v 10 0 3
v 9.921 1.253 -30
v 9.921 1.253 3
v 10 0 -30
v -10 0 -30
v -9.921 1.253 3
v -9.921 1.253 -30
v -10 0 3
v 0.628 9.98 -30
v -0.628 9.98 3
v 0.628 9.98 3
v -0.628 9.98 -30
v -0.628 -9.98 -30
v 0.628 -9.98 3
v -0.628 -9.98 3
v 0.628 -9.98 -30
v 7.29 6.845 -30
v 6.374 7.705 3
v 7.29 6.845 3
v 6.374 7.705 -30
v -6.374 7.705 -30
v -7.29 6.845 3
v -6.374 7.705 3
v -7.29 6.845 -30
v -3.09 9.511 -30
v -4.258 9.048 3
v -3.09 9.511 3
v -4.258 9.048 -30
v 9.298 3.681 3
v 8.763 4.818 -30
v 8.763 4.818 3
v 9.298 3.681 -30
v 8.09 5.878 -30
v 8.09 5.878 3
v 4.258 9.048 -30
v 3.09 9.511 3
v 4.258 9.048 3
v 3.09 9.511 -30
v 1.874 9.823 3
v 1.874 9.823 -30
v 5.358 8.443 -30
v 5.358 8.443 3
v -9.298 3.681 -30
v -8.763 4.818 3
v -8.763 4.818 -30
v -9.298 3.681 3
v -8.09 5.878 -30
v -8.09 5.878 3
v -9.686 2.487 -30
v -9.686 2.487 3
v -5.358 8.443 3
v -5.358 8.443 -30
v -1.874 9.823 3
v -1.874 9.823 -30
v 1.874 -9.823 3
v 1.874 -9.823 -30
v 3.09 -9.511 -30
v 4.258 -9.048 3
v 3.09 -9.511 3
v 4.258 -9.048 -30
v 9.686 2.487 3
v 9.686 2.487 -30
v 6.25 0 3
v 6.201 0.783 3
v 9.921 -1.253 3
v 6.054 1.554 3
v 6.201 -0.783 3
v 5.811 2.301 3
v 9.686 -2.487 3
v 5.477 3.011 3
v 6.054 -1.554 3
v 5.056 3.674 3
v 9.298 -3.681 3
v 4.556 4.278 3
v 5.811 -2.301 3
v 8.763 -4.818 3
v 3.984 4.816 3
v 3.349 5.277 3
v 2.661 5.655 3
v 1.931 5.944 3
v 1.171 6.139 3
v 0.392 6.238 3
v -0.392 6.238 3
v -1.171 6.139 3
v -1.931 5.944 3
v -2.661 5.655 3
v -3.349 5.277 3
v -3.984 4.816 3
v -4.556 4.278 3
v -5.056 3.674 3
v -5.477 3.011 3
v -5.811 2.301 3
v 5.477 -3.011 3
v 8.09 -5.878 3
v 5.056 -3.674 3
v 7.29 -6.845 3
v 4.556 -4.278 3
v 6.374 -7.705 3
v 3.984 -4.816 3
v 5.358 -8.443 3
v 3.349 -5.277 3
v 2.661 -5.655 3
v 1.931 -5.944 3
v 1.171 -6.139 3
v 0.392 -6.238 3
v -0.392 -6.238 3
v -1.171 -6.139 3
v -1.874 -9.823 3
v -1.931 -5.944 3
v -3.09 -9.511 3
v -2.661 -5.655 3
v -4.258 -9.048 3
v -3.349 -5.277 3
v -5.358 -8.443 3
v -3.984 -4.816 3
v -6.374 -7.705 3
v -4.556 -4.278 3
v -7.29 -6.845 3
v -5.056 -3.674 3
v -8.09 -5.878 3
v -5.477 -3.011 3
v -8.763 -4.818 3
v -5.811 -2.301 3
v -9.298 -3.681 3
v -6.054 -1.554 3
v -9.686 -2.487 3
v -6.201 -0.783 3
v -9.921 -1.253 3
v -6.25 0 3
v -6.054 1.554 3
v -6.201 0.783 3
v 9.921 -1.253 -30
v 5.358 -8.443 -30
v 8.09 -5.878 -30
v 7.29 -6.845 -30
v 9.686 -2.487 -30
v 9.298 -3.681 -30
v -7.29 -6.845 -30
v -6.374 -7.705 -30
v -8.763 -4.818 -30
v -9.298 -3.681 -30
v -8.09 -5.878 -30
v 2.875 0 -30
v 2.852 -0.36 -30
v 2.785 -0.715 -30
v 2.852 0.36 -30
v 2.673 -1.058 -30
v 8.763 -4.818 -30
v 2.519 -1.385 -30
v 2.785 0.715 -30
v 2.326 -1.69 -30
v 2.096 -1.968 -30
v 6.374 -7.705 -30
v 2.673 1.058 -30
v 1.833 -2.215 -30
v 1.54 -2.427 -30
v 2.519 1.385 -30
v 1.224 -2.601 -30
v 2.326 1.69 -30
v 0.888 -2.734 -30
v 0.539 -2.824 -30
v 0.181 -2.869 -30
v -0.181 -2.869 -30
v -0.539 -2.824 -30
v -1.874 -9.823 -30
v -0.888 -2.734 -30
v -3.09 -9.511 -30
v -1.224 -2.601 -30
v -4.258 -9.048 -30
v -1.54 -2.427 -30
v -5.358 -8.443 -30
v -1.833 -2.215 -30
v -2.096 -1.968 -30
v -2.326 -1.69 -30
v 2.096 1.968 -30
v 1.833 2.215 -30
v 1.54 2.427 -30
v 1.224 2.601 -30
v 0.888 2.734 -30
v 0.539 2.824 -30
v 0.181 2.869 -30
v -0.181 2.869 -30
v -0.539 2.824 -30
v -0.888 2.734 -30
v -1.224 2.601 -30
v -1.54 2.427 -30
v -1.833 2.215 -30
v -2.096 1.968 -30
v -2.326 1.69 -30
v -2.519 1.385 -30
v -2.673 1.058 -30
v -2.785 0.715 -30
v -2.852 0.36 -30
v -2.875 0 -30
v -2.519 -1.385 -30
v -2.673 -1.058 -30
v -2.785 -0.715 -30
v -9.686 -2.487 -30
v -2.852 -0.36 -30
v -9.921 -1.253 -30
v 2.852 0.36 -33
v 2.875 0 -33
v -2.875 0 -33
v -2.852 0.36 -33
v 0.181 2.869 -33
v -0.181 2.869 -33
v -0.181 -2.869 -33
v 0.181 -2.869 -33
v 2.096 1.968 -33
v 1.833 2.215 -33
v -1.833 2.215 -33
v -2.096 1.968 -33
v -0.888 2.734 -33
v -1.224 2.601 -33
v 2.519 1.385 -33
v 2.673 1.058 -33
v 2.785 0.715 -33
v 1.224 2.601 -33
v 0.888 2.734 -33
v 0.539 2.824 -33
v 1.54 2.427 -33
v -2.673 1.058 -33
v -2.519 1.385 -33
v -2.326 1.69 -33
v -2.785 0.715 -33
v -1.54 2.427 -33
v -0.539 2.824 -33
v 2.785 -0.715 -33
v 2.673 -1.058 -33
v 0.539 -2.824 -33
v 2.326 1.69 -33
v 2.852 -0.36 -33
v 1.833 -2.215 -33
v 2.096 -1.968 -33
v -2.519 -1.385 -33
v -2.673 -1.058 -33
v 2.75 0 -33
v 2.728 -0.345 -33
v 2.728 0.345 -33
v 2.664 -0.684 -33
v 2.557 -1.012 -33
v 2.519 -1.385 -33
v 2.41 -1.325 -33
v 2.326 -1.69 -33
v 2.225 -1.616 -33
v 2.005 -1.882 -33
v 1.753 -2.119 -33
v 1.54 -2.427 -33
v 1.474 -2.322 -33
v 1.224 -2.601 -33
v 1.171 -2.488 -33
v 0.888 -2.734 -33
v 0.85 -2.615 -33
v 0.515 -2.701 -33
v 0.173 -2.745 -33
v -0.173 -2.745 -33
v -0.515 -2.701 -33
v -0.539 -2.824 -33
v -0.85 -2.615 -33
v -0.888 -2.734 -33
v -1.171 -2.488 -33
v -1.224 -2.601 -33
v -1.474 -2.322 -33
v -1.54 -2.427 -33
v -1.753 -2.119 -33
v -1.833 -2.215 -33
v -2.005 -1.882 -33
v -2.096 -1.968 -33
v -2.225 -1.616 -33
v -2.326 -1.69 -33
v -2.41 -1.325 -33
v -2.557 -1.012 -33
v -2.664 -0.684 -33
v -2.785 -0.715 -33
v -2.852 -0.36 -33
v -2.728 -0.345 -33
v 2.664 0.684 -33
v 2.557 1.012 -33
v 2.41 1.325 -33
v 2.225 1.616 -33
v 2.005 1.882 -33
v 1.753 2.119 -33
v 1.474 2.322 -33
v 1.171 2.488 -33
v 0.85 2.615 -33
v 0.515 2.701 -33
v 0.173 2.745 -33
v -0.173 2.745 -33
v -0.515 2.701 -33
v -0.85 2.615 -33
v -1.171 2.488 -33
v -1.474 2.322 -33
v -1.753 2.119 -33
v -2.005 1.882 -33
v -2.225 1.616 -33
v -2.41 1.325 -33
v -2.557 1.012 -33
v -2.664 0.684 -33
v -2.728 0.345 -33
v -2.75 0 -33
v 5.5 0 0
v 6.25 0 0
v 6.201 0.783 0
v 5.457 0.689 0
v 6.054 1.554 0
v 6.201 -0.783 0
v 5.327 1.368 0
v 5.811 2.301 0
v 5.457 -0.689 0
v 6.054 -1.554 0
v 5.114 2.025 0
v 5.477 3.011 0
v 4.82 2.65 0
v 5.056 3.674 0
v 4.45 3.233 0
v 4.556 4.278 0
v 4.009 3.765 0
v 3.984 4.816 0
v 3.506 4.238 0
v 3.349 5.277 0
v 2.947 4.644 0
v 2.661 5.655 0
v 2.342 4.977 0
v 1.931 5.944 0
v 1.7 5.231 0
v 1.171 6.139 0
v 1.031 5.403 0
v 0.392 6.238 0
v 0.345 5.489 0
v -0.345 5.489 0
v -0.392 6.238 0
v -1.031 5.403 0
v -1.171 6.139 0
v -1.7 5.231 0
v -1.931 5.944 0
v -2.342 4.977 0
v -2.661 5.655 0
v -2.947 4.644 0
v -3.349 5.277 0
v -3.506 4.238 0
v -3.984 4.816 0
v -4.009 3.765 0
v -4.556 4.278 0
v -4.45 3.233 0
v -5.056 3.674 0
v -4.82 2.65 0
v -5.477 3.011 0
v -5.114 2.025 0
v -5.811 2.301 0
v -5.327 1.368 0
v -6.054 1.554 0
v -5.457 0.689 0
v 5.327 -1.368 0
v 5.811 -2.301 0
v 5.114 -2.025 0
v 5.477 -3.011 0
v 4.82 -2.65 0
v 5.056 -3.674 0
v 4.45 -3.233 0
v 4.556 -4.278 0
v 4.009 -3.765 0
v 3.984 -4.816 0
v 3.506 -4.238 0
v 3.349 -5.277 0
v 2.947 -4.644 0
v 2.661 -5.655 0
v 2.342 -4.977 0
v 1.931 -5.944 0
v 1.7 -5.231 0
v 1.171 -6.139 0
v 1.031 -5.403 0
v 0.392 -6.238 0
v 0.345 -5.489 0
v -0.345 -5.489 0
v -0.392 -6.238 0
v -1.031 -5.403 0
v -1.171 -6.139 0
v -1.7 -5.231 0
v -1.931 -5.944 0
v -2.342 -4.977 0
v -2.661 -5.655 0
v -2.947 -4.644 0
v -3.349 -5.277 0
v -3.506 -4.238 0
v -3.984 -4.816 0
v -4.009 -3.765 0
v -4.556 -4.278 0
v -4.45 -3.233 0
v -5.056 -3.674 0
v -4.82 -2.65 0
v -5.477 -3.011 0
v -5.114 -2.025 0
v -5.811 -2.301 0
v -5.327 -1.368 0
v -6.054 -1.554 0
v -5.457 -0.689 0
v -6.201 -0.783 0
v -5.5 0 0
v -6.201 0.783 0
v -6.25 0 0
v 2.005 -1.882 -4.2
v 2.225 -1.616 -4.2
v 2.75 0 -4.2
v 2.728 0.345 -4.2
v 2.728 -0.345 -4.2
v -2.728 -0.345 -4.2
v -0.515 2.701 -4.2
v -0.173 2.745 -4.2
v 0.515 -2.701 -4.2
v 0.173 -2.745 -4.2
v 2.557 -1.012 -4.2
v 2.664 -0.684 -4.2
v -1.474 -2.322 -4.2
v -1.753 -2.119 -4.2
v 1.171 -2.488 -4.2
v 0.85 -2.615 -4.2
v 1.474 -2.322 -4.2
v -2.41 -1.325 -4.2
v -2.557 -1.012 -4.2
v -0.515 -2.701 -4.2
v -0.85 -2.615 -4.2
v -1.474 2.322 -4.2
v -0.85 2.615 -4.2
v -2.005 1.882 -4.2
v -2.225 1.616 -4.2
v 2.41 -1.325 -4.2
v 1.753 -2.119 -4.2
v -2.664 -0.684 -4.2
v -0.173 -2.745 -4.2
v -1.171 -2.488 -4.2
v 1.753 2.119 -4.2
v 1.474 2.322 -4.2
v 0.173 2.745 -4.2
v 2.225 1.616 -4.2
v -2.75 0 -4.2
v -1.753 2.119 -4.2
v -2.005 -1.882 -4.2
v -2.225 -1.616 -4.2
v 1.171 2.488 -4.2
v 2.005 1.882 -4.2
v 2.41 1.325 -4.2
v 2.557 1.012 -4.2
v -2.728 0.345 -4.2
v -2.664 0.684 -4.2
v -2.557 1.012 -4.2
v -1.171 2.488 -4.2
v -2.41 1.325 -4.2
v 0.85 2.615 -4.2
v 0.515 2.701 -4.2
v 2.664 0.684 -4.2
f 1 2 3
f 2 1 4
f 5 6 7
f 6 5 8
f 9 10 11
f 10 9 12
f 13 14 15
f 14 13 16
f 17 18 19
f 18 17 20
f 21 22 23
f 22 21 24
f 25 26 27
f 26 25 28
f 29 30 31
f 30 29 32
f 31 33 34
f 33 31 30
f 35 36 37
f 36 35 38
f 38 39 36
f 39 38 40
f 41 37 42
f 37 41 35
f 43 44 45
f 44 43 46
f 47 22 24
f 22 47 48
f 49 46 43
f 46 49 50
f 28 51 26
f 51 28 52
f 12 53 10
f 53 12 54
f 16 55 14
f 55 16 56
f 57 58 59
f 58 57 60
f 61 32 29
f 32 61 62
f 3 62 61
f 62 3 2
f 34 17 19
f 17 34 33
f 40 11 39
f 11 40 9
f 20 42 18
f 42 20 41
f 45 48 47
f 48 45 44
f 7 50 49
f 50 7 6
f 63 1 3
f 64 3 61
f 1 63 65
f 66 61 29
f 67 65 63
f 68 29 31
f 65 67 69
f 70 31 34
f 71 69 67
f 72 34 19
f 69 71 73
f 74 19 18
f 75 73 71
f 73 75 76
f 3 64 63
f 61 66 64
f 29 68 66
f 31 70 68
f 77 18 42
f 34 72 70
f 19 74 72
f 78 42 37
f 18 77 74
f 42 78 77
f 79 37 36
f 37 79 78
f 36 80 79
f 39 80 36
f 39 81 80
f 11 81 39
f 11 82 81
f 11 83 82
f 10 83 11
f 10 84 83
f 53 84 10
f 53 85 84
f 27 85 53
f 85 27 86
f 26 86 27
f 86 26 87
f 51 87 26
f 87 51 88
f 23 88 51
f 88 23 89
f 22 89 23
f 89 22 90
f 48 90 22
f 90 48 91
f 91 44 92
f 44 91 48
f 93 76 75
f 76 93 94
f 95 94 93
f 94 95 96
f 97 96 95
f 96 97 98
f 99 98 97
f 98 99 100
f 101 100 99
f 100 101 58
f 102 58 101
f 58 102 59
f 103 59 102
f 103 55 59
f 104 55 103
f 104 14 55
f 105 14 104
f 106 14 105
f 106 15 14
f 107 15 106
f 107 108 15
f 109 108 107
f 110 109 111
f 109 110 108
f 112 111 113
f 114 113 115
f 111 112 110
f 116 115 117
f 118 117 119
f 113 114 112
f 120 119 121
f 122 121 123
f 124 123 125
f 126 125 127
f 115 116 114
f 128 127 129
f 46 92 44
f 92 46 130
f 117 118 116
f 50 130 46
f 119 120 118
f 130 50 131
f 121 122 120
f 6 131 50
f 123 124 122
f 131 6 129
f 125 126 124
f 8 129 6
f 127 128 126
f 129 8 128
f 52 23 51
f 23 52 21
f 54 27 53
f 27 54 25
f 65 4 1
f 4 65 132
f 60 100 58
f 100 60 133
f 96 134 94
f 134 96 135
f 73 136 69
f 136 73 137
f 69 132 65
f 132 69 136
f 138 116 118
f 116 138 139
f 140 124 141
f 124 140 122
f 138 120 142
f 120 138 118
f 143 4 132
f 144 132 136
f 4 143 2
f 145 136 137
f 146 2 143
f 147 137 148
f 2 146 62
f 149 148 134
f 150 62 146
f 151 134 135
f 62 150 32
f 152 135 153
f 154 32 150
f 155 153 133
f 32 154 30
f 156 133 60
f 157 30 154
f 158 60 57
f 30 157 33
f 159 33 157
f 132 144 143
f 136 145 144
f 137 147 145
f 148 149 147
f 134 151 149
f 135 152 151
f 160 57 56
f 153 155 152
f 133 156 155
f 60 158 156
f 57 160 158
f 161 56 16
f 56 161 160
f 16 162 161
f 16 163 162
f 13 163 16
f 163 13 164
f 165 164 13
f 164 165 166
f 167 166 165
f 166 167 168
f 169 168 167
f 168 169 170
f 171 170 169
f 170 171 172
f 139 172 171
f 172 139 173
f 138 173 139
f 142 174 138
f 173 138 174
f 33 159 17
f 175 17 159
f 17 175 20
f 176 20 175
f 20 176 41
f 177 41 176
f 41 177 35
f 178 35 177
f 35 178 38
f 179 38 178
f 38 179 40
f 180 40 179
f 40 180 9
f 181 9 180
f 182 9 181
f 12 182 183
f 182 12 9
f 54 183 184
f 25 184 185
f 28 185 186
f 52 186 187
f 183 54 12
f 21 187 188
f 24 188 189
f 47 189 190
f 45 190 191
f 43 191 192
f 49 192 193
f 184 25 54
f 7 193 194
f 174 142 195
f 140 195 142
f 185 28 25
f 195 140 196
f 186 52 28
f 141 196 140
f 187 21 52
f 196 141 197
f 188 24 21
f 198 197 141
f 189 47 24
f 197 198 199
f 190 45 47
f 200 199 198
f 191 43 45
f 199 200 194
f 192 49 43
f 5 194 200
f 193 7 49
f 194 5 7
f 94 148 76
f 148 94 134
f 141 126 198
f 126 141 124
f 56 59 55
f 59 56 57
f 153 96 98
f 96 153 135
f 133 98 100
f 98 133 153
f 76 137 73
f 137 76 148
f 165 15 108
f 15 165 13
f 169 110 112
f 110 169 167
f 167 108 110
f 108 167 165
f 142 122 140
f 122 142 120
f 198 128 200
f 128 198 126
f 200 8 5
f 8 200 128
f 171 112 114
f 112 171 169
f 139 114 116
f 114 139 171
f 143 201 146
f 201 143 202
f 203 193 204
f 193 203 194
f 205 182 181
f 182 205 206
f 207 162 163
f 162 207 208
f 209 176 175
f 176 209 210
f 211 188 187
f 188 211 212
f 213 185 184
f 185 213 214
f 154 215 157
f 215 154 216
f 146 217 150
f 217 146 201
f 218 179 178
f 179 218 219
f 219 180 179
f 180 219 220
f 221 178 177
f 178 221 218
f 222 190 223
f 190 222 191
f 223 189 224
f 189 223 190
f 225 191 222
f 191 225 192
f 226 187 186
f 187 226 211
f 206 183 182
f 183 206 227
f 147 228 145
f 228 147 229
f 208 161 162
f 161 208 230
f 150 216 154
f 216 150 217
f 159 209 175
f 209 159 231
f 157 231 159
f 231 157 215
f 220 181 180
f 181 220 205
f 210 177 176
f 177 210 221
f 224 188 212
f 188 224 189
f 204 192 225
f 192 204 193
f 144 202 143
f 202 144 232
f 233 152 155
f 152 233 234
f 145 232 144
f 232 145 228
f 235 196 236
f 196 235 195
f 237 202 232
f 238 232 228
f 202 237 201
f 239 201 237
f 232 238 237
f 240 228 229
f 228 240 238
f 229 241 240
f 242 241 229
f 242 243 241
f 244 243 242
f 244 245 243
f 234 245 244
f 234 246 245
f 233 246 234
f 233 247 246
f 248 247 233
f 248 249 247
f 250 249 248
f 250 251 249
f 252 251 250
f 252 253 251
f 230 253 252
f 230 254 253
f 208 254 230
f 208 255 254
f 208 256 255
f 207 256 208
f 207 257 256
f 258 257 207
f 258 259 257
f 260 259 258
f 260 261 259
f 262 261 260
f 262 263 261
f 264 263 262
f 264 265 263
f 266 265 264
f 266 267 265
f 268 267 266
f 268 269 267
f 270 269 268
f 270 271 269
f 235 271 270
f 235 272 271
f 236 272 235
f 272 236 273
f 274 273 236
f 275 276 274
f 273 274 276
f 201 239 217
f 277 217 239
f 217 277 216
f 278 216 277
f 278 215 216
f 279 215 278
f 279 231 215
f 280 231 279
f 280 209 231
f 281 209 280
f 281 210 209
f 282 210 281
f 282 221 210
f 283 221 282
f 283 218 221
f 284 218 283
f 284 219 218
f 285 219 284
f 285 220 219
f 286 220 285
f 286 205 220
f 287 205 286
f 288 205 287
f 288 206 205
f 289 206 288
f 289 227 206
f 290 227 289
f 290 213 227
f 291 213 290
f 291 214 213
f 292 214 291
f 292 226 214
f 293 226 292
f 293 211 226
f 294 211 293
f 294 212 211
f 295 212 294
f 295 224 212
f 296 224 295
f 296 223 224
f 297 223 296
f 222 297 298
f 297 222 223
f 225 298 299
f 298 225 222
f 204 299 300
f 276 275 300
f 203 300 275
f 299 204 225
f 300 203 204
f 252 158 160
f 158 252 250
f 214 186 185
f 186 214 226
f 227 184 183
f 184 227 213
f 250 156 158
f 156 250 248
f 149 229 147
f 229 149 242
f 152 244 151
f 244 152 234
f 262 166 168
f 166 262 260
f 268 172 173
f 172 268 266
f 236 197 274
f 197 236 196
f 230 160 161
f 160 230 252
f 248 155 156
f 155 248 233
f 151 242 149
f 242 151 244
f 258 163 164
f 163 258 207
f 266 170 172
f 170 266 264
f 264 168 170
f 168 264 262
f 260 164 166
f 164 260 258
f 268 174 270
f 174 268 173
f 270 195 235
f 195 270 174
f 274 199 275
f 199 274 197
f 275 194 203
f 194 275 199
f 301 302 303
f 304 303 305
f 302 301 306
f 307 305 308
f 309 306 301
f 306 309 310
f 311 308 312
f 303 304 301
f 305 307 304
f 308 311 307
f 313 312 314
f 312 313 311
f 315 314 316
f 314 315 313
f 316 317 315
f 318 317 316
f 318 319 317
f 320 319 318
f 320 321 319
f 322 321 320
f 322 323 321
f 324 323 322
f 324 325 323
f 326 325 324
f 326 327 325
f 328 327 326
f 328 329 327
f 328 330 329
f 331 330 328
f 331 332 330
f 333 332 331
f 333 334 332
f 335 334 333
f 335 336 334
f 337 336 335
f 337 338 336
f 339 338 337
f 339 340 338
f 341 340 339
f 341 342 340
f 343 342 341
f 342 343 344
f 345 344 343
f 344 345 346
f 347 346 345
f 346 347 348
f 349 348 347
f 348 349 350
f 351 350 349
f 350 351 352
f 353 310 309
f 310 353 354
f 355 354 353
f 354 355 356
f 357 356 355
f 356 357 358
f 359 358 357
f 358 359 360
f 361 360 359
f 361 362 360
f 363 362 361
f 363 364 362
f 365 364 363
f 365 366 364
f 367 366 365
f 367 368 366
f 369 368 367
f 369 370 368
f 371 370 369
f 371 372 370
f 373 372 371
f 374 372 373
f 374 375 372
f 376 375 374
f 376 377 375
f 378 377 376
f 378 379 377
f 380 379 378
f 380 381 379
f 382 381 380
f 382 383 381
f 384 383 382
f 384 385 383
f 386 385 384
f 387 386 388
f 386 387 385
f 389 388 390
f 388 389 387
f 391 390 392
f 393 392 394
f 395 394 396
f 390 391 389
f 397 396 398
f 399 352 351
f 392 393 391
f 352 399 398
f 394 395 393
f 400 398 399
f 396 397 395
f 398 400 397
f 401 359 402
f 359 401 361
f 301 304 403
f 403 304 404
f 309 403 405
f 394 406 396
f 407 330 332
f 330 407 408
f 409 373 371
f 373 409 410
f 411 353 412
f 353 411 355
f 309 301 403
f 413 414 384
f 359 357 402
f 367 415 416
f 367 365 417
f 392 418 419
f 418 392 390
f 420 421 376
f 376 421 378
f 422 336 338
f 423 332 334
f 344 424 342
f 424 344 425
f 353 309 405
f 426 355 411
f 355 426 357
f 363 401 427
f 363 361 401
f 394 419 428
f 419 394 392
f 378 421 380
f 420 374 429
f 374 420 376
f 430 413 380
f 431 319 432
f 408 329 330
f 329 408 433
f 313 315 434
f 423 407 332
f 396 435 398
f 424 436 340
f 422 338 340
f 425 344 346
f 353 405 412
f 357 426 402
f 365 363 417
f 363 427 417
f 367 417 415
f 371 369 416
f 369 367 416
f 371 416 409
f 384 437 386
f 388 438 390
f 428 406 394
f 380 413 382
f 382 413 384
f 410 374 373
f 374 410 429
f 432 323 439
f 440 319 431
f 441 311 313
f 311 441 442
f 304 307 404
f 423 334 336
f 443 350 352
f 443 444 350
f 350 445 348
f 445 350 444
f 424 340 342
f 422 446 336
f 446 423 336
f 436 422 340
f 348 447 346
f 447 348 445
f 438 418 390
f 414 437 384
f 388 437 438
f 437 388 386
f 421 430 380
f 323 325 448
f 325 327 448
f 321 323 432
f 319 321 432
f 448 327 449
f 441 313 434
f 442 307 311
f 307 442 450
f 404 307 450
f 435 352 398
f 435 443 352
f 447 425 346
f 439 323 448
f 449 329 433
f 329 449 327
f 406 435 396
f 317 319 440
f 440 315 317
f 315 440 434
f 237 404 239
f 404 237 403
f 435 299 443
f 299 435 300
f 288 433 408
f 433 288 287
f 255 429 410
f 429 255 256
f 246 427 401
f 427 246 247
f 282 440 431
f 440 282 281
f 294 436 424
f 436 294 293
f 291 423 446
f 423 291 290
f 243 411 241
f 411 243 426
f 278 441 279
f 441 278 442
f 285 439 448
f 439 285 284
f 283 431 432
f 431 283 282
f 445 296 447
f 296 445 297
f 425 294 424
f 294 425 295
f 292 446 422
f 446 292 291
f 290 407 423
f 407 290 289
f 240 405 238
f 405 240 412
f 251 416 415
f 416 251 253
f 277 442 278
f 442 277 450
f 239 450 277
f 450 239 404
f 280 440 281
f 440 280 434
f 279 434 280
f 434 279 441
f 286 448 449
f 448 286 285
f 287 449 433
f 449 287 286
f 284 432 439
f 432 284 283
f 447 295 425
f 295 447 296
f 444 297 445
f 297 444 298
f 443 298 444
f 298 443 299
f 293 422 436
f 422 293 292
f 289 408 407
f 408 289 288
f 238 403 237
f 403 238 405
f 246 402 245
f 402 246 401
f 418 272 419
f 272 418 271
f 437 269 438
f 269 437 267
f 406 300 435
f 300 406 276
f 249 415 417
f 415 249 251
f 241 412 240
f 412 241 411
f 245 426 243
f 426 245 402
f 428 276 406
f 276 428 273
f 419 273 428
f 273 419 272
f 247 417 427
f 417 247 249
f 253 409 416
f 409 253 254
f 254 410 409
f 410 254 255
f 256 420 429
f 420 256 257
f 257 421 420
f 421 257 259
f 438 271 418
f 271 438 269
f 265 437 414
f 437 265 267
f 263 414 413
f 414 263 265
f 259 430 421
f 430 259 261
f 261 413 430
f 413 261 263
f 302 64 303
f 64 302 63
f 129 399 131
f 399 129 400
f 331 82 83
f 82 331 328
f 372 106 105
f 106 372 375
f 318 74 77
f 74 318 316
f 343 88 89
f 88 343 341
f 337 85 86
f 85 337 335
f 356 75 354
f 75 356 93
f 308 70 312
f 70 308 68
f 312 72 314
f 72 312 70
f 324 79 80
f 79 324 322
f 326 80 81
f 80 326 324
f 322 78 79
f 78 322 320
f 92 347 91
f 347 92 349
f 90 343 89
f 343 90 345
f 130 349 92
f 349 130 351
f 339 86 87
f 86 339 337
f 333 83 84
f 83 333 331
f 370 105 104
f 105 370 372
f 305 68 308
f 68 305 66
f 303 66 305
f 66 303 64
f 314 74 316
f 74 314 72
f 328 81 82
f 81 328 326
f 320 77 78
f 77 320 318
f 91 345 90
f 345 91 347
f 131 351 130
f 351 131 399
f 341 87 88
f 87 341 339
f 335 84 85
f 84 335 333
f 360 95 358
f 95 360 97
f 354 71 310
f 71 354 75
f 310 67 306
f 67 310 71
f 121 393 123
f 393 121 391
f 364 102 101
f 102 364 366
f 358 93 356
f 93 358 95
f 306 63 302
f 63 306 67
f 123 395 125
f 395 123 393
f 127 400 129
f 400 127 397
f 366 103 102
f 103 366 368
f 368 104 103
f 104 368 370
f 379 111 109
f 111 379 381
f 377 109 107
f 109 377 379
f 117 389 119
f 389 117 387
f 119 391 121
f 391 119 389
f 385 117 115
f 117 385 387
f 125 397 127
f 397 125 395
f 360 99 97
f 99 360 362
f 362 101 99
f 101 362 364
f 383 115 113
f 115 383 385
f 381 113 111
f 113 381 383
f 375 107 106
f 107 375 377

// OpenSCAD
$fn = 50;


difference() {
	union() {
		translate(v = [0, 0, -30.0000000000]) {
			cylinder(h = 33, r = 10.0000000000);
		}
		#translate(v = [0, 0, -33.0000000000]) {
			cylinder(h = 33, r = 2.8750000000);
		}
	}
	union() {
		translate(v = [0, 0, 0]) {
			rotate(a = [0, 0, 0]) {
				difference() {
					union() {
						translate(v = [0, 0, -33.0000000000]) {
							cylinder(h = 33, r = 2.2500000000);
						}
						translate(v = [0, 0, -4.2000000000]) {
							cylinder(h = 4.2000000000, r1 = 2.7500000000, r2 = 5.5000000000);
						}
						translate(v = [0, 0, -33.0000000000]) {
							cylinder(h = 33, r = 2.7500000000);
						}
						translate(v = [0, 0, -33.0000000000]) {
							cylinder(h = 33, r = 2.2500000000);
						}
					}
					union();
				}
			}
		}
		#cylinder(h = 3, r = 6.2500000000);
	}
}
